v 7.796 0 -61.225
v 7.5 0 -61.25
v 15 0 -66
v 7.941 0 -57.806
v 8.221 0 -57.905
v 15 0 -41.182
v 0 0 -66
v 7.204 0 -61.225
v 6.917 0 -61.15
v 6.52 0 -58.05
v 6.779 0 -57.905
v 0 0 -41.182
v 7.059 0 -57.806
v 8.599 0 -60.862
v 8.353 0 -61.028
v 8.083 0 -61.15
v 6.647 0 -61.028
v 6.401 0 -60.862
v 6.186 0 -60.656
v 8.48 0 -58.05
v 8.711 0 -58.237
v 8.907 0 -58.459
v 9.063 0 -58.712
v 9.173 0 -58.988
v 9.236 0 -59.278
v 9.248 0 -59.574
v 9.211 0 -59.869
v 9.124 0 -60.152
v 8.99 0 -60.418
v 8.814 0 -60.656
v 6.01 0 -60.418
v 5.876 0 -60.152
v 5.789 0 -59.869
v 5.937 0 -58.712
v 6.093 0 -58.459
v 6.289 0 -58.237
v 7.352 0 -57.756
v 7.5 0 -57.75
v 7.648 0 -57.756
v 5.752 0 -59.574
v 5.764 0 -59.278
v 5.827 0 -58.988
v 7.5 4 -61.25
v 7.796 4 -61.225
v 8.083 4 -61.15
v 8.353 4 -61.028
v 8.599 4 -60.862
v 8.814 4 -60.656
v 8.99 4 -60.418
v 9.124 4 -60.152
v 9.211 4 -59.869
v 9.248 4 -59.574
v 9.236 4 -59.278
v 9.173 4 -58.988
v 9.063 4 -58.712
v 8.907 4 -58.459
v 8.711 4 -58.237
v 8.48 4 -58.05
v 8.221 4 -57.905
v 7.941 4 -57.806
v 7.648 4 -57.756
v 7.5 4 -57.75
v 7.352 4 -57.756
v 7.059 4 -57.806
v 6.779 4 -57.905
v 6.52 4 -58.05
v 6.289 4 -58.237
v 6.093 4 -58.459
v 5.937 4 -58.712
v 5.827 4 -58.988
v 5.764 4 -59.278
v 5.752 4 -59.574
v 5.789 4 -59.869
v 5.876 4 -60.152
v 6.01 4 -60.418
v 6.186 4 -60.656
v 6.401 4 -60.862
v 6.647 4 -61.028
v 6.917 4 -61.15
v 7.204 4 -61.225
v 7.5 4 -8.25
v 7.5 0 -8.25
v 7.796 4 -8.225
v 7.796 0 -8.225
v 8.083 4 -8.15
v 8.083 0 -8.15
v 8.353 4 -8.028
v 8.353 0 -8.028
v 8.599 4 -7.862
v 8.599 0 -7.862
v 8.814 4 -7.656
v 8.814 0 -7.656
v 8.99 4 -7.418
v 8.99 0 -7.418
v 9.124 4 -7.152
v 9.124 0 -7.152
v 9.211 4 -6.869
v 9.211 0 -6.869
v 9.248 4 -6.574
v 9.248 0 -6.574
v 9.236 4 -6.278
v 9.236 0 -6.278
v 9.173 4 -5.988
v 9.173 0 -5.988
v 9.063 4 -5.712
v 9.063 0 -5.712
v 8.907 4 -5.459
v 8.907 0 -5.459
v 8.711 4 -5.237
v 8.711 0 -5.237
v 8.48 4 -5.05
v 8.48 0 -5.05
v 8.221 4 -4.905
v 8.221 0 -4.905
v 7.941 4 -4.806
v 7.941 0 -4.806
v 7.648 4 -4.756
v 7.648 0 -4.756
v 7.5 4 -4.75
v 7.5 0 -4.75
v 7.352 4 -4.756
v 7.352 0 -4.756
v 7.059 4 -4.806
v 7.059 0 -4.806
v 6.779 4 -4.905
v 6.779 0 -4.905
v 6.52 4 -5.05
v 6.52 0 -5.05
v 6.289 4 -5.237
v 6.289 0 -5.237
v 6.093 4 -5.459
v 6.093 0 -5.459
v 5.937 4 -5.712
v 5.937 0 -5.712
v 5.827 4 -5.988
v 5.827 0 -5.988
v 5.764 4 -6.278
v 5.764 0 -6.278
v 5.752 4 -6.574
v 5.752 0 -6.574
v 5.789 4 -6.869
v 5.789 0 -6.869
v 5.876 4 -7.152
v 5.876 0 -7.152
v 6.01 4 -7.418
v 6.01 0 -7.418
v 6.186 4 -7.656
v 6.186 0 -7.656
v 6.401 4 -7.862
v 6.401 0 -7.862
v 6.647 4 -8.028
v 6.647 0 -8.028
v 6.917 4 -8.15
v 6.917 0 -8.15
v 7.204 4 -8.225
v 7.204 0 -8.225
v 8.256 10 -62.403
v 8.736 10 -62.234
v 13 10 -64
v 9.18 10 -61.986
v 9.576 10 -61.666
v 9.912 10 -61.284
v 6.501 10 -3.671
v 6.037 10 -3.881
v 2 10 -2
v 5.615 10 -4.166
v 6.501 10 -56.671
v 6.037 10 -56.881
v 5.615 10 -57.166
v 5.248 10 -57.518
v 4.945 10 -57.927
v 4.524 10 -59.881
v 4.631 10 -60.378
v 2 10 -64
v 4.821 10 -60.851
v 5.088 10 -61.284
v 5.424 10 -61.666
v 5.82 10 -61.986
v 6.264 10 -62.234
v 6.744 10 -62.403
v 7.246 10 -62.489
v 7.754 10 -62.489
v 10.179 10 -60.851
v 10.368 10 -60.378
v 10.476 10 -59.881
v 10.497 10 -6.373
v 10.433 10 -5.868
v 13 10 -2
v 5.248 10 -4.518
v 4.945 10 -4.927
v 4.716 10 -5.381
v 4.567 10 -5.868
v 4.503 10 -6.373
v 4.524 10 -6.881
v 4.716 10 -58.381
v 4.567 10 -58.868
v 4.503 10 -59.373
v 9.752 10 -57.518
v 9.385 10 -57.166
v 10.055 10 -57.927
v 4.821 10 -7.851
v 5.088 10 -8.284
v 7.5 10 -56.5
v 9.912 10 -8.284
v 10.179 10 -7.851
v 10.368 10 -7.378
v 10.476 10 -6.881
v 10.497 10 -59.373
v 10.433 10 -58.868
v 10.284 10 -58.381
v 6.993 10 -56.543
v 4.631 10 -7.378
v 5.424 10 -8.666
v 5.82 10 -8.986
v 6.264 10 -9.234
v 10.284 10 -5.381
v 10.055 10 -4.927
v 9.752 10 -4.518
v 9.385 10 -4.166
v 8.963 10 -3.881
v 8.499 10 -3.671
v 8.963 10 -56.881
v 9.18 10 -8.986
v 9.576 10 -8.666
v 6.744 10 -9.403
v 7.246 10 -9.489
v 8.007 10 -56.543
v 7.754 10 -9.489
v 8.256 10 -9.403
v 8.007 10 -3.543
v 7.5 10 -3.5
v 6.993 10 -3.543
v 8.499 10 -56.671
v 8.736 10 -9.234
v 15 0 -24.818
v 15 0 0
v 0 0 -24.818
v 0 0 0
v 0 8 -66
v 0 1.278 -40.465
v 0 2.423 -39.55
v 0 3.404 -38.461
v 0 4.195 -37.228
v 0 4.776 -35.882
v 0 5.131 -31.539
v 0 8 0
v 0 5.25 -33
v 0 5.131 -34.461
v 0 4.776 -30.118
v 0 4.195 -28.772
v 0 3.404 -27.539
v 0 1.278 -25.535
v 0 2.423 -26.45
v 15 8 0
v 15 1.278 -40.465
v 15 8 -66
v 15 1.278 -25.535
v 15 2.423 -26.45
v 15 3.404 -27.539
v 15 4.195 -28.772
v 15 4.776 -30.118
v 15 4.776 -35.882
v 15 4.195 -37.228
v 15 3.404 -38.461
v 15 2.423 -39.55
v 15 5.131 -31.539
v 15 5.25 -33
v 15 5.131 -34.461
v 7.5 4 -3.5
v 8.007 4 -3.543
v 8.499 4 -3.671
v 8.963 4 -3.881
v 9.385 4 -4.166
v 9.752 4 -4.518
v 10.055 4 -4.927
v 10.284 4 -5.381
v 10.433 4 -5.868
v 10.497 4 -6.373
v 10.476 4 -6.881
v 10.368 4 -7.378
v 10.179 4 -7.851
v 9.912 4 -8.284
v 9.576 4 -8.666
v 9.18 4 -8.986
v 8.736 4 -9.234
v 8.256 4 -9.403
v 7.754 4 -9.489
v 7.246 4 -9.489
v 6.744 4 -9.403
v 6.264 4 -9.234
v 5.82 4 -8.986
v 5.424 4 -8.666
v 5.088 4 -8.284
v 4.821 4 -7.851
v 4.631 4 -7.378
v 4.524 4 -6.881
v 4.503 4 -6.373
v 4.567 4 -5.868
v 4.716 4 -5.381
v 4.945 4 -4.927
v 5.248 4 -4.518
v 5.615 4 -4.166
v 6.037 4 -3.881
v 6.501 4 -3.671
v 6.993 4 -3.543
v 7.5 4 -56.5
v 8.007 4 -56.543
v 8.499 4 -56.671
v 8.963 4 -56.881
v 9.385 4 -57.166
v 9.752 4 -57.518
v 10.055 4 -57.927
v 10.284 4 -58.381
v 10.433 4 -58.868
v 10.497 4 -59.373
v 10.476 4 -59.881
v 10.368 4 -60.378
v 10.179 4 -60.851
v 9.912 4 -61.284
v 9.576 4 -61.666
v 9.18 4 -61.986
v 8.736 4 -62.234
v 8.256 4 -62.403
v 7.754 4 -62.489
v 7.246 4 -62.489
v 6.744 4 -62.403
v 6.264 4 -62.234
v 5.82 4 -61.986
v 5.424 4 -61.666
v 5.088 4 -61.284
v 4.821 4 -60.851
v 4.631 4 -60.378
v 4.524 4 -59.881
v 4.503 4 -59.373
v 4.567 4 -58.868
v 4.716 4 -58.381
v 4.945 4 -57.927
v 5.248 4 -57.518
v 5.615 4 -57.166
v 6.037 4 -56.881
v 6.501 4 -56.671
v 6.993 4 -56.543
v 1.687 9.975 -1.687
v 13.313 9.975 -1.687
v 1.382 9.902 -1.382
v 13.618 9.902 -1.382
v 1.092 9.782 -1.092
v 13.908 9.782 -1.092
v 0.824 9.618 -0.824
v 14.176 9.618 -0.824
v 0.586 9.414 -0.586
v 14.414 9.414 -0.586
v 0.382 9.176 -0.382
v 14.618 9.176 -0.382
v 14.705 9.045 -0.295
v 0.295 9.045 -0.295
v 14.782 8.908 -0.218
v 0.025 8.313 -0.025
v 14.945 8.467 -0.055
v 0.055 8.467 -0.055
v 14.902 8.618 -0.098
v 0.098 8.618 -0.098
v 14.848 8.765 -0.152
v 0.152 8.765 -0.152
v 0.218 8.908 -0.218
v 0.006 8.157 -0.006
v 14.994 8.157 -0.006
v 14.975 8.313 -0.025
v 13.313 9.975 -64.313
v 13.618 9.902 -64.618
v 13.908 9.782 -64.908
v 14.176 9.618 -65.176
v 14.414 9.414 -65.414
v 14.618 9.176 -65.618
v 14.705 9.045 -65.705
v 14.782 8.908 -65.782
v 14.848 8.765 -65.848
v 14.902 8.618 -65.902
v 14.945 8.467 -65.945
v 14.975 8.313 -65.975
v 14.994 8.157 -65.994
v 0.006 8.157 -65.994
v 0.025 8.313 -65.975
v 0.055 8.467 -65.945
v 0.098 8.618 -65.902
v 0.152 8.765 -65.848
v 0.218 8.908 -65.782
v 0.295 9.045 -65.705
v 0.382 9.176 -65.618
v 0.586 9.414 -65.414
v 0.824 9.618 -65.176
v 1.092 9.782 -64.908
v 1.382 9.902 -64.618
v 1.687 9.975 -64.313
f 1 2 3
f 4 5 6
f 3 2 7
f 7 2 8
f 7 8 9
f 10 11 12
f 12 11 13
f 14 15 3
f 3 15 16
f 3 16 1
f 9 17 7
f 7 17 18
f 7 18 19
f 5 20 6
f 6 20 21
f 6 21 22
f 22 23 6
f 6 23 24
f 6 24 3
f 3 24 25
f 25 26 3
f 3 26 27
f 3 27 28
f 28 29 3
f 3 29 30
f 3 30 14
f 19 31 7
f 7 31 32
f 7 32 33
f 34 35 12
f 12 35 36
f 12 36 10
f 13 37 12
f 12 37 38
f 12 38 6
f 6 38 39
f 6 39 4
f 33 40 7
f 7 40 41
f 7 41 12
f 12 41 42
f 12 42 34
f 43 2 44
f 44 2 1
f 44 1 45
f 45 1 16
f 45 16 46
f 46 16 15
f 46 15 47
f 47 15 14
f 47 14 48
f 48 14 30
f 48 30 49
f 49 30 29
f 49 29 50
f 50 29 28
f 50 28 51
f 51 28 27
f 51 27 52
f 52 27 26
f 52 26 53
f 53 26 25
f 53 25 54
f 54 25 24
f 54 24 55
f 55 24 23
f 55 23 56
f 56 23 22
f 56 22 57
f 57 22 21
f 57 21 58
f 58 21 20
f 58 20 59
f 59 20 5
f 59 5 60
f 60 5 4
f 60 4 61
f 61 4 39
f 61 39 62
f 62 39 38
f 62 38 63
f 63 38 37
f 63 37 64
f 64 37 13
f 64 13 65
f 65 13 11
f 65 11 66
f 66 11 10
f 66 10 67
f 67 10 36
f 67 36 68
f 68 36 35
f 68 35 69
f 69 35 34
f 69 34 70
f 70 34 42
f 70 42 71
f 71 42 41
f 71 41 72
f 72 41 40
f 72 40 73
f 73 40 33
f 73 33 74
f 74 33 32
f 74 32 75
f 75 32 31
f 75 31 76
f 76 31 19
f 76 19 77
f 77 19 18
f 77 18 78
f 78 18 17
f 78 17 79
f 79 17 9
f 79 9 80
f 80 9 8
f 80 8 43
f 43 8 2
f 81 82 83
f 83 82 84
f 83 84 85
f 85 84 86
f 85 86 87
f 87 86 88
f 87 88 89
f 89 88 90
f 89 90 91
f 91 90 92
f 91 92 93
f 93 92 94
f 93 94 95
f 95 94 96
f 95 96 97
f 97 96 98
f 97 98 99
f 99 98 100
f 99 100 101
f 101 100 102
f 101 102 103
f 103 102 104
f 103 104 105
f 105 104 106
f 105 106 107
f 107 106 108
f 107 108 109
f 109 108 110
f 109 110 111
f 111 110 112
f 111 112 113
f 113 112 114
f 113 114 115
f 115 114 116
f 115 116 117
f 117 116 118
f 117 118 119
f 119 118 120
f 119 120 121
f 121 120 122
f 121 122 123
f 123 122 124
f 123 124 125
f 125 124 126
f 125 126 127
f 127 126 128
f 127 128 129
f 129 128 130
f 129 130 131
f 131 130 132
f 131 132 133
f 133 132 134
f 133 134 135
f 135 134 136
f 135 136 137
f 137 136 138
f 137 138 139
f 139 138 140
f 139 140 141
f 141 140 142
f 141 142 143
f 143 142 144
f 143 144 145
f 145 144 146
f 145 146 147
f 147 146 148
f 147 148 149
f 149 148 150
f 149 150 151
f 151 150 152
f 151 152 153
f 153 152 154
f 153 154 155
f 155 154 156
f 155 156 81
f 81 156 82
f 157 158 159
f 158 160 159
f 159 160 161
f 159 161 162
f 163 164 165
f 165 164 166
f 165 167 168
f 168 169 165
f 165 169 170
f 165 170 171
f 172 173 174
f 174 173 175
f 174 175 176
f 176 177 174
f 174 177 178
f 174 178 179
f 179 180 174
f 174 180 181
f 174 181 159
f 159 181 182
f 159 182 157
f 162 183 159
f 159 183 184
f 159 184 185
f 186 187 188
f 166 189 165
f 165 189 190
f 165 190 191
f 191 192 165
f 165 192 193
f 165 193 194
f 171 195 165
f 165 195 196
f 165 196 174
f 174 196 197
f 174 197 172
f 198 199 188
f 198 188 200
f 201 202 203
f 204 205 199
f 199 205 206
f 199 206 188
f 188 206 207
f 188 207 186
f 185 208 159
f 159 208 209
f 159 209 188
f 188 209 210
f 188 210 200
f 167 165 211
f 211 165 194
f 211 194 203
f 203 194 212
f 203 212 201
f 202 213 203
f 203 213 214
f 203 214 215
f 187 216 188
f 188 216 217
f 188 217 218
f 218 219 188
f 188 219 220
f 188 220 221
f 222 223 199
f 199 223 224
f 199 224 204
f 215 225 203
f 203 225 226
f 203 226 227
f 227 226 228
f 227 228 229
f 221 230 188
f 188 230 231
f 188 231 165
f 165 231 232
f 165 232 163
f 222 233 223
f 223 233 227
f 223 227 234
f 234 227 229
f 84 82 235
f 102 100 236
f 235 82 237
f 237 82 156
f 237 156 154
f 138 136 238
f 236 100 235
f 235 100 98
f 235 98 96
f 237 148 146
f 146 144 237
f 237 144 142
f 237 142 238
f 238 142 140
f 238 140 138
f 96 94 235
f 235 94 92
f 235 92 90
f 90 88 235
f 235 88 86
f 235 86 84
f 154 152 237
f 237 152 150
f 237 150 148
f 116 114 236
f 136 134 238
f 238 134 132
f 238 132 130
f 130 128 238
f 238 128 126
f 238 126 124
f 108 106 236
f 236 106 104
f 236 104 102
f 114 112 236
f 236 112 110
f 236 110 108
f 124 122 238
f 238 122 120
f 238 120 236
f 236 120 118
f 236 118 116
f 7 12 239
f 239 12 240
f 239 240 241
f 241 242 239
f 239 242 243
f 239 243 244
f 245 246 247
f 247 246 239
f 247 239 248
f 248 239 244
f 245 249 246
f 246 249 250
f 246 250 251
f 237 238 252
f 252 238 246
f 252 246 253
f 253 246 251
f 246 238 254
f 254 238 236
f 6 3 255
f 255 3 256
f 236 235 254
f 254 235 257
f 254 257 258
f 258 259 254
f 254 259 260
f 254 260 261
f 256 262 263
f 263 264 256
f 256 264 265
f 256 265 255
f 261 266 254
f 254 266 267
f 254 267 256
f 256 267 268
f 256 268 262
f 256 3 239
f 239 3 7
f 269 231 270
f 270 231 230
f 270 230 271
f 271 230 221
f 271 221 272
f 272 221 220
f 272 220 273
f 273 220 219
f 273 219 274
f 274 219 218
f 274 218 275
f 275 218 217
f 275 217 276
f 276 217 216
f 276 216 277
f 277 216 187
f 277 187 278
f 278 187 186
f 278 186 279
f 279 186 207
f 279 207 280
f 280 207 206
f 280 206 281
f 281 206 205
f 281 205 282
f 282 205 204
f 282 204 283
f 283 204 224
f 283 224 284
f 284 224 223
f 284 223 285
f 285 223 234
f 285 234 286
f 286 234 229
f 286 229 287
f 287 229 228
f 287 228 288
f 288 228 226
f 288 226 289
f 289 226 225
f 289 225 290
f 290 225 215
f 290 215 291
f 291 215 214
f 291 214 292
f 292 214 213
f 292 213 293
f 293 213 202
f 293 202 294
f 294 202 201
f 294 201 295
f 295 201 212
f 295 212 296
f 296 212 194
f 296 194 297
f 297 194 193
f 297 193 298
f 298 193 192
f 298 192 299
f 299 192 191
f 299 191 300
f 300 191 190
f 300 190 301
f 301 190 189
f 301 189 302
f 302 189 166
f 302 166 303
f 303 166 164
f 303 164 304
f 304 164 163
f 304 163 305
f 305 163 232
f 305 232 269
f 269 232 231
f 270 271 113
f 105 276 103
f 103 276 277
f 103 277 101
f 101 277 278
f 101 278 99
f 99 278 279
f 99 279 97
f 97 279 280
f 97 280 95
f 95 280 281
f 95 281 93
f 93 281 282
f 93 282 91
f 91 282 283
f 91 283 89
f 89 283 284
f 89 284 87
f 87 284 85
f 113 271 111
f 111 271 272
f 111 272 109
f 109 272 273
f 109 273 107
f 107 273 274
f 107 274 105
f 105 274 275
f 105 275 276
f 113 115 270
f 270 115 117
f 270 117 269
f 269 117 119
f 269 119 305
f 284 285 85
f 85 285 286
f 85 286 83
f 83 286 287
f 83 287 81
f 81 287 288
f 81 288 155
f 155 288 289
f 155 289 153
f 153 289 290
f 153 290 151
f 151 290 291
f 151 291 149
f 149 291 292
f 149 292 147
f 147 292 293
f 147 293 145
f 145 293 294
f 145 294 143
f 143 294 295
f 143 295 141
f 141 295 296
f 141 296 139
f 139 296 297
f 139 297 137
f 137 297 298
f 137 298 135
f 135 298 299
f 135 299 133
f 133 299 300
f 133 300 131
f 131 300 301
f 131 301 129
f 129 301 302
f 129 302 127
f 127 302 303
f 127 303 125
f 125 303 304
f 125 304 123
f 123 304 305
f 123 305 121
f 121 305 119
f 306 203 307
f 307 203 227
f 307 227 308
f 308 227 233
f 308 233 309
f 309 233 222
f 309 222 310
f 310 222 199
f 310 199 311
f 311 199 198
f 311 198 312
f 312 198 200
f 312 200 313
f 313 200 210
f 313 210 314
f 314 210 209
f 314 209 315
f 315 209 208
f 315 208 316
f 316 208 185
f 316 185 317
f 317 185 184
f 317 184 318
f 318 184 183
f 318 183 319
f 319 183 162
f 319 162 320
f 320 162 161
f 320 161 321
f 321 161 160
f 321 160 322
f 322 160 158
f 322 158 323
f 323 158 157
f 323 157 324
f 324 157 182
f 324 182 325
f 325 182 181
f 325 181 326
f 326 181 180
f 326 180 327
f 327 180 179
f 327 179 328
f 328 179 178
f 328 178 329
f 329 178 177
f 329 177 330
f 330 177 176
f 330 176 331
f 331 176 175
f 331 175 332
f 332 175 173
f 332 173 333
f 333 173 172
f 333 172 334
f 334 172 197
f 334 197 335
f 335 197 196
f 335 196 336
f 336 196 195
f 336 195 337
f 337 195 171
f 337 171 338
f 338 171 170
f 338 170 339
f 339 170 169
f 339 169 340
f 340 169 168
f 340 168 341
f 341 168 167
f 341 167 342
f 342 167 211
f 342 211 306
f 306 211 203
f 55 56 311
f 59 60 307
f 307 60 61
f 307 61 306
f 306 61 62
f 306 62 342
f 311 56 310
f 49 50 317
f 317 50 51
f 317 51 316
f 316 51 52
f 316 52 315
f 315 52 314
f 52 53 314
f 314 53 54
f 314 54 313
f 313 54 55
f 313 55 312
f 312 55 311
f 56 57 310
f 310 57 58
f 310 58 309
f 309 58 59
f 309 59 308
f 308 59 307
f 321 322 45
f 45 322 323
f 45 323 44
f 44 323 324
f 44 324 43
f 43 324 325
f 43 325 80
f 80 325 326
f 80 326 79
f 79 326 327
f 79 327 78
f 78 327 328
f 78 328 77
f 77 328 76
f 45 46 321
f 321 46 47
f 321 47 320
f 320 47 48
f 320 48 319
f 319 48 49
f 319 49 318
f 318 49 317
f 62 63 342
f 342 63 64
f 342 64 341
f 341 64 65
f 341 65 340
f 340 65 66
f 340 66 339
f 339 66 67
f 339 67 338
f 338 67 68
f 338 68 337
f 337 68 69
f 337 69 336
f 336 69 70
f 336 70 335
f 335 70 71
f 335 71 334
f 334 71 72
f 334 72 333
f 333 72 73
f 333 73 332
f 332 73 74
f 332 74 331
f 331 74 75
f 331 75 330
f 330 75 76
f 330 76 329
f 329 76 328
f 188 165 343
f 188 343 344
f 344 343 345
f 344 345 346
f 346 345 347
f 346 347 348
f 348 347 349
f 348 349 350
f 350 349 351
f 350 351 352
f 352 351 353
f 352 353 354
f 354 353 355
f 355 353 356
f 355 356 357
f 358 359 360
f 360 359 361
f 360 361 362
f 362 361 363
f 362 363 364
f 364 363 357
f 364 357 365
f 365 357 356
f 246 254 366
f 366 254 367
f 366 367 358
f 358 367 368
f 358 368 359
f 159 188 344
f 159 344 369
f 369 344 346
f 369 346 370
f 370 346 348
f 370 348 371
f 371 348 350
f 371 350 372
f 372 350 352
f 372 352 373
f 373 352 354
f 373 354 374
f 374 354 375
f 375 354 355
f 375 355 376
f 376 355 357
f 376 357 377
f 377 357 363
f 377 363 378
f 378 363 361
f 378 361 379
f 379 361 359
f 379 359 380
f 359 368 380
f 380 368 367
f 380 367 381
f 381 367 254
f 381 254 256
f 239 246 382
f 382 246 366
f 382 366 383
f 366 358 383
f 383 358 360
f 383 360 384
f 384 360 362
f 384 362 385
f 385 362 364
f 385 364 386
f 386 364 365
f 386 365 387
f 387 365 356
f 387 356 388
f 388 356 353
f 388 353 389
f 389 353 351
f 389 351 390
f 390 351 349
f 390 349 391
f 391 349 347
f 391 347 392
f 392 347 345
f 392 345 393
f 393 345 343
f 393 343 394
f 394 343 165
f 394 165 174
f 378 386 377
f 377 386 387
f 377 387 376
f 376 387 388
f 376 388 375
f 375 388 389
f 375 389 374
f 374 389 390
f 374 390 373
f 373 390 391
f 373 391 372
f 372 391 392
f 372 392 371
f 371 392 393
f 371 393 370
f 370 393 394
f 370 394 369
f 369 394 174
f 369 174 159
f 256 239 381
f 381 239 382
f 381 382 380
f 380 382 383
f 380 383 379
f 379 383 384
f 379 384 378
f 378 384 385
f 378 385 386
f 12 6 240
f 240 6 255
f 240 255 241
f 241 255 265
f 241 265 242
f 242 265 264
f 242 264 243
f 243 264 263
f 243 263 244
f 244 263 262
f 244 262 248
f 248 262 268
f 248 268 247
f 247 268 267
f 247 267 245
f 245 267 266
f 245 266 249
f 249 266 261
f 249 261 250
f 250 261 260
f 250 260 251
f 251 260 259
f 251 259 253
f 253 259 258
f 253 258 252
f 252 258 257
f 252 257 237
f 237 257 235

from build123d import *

# Parameters (mm, degrees)
SKETCH1_W           = 15
SKETCH1_H           = 66
SKETCH1_R           = 1.75
BOSS_EXTRUDE1_DEPTH = 10
SKETCH2_R           = 3
CUT_EXTRUDE1_DEPTH  = 6
FILLET1_R           = 2
SKETCH3_R           = 9
CUT_EXTRUDE2_DEPTH  = 15


with BuildPart() as part:
    # Sketch1 → Boss-Extrude1 (new body)
    with BuildSketch(Plane(origin=(0, 0, 0), x_dir=(1, 0, 0), z_dir=(0, 1, 0))):
        with Locations((7.5, 33)):
            Rectangle(SKETCH1_W, SKETCH1_H)
        with Locations(Location((7.5, 59.5, 0), (0, 0, 270))):
            Circle(SKETCH1_R, mode=Mode.SUBTRACT)
        with Locations(Location((7.5, 6.5, 0), (0, 0, 270))):
            Circle(SKETCH1_R, mode=Mode.SUBTRACT)
    extrude(amount=BOSS_EXTRUDE1_DEPTH)

    # Sketch2 → Cut-Extrude1 (cut)
    with BuildSketch(Plane(origin=(0, 10, 0), x_dir=(1, 0, 0), z_dir=(0, 1, 0))):
        with Locations(Location((7.5, 59.5, 0), (0, 0, 270))):
            Circle(SKETCH2_R)
        with Locations(Location((7.5, 6.5, 0), (0, 0, 270))):
            Circle(SKETCH2_R)
    extrude(amount=-CUT_EXTRUDE1_DEPTH, mode=Mode.SUBTRACT)

    # Fillet1
    fillet1_edges = [part.edges().sort_by_distance(p)[0] for p in [
        (15, 10, -33),
        (7.5, 10, -66),
        (0, 10, -33),
        (7.5, 10, 0),
    ]]
    fillet(fillet1_edges, radius=FILLET1_R)

    # Sketch3 → Cut-Extrude2 (cut)
    with BuildSketch(Plane(origin=(15, 0, 0), x_dir=(0, 0, -1), z_dir=(1, 0, 0))):
        with Locations((33, -3.75)):
            Circle(SKETCH3_R)
    extrude(amount=-CUT_EXTRUDE2_DEPTH, mode=Mode.SUBTRACT)


solid = part.part
